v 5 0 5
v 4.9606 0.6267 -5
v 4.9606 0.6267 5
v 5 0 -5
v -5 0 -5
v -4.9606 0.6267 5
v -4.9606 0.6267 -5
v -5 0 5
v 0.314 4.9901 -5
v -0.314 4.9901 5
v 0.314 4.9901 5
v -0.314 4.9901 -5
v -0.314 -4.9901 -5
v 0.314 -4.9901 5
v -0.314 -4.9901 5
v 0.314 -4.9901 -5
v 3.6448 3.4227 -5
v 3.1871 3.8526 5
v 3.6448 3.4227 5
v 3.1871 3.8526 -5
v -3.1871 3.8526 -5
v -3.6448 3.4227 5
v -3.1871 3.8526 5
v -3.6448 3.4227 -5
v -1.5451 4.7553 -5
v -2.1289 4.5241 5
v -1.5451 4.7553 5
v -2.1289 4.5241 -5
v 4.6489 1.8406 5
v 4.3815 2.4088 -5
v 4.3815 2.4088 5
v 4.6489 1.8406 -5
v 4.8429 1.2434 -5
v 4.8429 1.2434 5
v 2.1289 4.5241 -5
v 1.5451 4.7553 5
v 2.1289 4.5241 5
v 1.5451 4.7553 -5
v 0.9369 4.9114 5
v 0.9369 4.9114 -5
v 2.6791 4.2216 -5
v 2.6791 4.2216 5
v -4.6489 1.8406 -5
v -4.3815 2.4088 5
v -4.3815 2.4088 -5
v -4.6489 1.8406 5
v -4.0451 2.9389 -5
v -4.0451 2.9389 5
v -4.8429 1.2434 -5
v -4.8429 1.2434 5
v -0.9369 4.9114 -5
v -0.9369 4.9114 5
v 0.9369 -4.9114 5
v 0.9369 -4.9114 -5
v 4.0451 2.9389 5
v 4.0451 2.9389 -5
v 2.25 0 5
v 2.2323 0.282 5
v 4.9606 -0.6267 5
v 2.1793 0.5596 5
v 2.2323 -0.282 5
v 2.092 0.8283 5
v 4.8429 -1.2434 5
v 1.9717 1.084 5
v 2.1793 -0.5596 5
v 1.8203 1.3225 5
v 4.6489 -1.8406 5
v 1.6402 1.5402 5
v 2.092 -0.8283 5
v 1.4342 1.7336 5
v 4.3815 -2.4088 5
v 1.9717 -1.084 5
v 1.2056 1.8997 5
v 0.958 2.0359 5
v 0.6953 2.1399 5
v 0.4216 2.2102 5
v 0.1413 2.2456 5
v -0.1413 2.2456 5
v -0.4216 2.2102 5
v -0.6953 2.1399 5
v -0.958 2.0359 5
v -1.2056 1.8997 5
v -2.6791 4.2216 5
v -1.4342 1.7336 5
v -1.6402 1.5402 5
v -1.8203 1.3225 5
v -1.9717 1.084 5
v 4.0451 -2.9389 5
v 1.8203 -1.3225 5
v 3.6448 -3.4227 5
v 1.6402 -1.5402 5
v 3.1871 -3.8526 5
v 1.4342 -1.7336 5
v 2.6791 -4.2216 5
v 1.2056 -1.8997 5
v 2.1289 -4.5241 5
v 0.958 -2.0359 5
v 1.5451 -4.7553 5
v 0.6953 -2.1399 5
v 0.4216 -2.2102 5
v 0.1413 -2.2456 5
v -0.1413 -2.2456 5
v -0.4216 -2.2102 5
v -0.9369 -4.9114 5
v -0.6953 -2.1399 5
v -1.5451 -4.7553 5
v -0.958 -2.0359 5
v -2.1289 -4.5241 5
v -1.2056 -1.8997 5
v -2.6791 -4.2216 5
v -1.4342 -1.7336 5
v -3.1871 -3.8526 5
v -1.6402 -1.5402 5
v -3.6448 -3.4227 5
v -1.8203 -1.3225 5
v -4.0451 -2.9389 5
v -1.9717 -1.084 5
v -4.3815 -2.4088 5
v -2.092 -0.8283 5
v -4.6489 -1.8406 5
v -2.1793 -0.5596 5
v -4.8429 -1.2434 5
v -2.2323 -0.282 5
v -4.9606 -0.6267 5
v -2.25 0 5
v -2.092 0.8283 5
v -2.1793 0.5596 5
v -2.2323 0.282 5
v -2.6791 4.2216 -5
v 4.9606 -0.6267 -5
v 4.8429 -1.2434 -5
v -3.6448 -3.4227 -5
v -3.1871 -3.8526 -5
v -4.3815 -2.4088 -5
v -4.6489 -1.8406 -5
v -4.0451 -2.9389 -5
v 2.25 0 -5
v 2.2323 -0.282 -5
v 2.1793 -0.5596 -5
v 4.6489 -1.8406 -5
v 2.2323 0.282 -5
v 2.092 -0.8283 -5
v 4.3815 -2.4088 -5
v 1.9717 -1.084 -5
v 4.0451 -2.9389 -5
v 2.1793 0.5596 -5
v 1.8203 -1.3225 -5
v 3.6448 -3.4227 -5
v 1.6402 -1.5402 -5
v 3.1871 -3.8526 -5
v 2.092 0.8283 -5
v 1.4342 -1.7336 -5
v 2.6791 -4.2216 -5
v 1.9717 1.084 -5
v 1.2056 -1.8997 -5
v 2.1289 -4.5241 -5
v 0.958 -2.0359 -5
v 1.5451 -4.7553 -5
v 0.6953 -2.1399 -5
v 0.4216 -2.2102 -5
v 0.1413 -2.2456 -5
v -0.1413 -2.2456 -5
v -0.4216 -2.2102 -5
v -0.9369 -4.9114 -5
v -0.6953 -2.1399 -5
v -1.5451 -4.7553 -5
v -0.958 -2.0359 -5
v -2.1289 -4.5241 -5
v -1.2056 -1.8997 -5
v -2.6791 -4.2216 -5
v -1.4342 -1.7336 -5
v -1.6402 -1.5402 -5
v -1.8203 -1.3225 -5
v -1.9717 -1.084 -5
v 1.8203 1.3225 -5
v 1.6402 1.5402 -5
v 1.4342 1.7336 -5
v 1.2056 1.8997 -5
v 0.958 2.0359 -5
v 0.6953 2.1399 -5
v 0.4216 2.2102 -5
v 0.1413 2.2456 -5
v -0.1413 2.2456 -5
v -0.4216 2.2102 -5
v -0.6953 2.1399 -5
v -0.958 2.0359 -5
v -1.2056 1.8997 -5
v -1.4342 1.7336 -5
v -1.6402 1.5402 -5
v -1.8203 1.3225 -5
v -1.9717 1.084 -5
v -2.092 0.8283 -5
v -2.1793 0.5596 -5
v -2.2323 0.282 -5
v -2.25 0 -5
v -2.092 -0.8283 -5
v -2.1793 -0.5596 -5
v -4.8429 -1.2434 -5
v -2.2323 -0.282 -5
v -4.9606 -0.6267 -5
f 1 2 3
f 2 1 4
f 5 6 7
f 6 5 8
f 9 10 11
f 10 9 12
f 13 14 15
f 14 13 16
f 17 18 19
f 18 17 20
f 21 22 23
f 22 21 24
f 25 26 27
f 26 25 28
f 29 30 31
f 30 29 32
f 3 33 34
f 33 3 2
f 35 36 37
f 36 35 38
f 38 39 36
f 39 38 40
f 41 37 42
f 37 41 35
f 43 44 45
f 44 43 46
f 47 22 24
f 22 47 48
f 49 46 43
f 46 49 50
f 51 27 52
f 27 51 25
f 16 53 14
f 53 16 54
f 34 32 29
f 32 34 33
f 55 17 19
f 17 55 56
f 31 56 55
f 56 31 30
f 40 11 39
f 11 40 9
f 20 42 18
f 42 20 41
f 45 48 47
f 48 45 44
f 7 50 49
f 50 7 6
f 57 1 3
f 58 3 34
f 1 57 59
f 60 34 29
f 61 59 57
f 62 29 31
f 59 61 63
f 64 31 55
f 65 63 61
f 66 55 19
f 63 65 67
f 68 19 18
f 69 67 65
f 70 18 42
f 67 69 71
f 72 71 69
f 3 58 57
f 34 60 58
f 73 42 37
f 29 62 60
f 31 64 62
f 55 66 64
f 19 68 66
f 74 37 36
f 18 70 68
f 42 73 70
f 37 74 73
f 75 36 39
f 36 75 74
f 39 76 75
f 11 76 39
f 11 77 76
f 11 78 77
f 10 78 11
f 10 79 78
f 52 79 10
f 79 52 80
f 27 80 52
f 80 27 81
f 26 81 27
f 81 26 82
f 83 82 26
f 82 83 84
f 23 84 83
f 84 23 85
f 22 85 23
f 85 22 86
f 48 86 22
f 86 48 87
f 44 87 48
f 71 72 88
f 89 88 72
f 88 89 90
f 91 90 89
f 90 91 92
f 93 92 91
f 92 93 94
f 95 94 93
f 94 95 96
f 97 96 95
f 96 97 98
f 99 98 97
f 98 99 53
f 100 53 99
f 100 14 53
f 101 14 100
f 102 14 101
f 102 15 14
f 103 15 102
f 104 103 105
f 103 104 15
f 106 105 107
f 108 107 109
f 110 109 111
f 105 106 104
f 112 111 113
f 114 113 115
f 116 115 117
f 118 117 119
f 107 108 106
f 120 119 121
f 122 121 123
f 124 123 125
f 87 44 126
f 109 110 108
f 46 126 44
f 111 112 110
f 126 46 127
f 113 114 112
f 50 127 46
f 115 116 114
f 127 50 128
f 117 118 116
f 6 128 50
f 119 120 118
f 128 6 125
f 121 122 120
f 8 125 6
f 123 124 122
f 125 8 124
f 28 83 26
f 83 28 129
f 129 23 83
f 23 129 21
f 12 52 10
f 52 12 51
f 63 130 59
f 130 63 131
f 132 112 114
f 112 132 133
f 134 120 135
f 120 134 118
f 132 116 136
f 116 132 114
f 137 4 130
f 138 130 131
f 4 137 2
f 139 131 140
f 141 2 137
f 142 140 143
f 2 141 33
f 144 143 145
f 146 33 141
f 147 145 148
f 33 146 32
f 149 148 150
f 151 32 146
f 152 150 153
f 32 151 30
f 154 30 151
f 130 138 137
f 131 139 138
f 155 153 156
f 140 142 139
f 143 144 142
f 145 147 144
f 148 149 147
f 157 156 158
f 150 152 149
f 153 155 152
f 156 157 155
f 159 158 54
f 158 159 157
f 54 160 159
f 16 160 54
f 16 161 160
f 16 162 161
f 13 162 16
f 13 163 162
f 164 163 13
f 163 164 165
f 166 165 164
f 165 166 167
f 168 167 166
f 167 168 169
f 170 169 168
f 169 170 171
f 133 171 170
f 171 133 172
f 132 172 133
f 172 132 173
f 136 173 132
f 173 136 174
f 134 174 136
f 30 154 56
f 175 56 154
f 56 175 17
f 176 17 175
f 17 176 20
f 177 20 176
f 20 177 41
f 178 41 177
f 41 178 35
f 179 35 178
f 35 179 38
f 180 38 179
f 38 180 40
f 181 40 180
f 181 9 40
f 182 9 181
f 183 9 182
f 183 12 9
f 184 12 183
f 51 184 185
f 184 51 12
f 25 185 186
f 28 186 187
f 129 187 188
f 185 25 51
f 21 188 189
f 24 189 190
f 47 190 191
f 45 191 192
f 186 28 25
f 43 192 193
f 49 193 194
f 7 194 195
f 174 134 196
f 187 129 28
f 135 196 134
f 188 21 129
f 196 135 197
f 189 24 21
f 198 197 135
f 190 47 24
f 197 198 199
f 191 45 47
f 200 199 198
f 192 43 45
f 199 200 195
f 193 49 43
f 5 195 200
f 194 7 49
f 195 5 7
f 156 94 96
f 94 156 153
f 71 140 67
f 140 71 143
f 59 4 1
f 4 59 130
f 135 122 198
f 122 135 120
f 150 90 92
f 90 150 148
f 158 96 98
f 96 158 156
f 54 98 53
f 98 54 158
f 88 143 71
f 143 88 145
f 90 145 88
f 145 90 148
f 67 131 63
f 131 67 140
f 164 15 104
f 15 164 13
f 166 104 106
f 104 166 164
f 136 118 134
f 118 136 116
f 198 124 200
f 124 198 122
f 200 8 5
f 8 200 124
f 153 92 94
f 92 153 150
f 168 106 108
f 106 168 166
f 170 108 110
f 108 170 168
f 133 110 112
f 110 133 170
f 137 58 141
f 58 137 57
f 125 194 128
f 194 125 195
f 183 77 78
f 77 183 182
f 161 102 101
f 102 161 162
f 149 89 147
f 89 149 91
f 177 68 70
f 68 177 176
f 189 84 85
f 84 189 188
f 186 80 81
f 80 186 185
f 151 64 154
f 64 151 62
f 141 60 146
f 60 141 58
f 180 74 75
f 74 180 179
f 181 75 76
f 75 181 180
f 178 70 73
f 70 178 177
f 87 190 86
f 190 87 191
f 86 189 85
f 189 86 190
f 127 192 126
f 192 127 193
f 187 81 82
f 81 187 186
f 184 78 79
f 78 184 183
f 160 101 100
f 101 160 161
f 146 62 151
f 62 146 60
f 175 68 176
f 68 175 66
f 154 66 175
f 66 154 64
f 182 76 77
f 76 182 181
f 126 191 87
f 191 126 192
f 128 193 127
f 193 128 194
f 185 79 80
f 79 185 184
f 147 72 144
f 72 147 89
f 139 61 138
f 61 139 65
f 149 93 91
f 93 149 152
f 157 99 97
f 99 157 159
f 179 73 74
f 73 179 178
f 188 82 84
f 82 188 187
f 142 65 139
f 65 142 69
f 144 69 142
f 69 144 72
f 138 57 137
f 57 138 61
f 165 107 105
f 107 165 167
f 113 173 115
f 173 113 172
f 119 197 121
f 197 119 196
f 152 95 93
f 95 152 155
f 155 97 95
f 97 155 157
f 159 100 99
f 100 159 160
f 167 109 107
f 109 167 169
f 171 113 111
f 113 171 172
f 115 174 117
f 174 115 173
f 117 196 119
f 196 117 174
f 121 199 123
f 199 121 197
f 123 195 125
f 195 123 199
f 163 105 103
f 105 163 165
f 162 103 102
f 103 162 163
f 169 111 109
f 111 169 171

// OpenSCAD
$fn = 50;


difference() {
	union() {
		translate(v = [0, 0, -5.0000000000]) {
			cylinder(h = 10, r = 5.0000000000);
		}
	}
	union() {
		translate(v = [0, 0, -100.0000000000]) {
			cylinder(h = 200, r = 2.2500000000);
		}
	}
}
